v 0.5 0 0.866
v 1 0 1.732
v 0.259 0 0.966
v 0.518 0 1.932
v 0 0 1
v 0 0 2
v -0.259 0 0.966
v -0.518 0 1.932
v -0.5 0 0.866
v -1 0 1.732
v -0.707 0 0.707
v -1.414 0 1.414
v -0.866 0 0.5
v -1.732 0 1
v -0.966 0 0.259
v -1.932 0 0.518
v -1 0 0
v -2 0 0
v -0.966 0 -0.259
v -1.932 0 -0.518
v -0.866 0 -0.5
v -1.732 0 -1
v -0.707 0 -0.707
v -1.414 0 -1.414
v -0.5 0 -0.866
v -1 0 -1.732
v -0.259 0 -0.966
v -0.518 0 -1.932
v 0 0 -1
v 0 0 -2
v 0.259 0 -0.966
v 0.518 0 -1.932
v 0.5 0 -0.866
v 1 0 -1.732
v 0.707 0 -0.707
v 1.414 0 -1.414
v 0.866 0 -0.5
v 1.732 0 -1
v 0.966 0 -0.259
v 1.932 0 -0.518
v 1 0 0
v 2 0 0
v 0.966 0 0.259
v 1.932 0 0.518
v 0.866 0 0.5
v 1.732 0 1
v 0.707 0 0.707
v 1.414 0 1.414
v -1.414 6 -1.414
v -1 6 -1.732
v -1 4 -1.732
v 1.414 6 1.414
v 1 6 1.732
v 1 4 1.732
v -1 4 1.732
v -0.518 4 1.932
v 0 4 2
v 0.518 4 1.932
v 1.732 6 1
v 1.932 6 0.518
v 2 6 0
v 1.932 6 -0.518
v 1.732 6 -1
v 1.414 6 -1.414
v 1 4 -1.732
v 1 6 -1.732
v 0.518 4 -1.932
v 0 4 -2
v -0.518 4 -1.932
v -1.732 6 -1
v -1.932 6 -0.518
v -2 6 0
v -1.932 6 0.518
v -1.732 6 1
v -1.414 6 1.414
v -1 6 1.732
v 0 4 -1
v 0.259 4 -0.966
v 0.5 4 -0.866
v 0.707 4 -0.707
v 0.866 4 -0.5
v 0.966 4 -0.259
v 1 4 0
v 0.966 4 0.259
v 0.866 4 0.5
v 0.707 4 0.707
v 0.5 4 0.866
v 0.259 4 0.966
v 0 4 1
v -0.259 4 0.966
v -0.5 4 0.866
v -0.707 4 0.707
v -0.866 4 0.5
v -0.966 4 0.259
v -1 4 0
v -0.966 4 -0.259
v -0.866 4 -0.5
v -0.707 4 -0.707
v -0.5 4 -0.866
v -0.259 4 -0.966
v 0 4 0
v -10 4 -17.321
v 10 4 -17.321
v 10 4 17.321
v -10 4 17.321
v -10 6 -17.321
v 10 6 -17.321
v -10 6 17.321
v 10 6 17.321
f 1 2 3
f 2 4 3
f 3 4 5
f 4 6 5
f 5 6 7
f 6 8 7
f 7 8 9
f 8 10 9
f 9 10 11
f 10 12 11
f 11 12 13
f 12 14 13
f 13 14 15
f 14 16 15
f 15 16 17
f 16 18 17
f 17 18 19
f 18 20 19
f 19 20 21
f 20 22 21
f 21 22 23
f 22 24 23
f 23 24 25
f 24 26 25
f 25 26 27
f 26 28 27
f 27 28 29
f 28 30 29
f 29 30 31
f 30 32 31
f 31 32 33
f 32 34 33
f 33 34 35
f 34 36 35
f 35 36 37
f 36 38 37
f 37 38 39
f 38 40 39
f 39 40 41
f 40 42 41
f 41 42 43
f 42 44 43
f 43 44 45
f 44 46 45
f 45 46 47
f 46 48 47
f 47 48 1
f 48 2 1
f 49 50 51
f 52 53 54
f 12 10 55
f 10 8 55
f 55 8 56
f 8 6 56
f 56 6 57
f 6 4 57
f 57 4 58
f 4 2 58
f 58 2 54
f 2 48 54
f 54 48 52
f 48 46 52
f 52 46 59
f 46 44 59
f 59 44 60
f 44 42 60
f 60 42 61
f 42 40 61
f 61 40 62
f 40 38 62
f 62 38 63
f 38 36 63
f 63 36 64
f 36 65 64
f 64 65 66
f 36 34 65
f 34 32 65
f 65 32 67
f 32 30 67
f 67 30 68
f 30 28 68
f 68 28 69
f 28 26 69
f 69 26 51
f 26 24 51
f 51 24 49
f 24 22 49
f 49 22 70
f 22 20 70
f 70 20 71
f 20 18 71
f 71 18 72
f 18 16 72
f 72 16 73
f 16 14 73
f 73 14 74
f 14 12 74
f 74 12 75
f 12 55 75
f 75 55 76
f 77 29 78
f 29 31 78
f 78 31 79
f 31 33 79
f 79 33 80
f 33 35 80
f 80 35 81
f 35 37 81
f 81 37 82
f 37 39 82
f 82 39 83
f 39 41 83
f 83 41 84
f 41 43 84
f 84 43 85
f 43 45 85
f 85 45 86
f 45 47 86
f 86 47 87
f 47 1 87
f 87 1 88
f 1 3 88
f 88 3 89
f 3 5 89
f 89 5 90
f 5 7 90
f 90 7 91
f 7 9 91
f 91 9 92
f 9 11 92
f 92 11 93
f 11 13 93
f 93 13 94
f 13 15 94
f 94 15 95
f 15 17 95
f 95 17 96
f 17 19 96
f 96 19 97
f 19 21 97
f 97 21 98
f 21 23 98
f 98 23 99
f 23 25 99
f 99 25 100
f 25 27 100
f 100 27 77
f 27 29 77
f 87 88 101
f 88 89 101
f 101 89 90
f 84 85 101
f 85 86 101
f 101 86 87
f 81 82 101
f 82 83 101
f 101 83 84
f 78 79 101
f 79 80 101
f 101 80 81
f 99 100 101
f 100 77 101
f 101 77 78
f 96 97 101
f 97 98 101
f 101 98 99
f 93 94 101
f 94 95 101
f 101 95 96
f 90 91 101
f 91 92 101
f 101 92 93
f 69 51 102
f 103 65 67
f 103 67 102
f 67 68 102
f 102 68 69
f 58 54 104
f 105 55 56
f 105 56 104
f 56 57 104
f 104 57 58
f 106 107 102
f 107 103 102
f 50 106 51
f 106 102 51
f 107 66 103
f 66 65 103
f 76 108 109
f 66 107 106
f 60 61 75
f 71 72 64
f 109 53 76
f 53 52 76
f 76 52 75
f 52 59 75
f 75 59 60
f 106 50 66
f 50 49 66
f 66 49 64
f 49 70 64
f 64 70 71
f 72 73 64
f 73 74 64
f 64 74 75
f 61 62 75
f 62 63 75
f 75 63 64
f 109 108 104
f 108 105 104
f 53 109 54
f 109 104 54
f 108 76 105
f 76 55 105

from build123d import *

# Parameters (mm, degrees)
ESBO_O1_R                = 2
ESBO_O1_R_2              = 1
RESSALTO_EXTRUS_O1_DEPTH = 4
ESBO_O2_R                = 2
RESSALTO_EXTRUS_O2_DEPTH = 2


with BuildPart() as part:
    # Esboço1 → Ressalto-extrusão1 (new body)
    with BuildSketch(Plane(origin=(0, 0, 0), x_dir=(1, 0, 0), z_dir=(0, 1, 0))):
        with Locations(Location((0, 0, 0), (0, 0, 270))):
            Circle(ESBO_O1_R)
        with Locations(Location((0, 0, 0), (0, 0, 270))):
            Circle(ESBO_O1_R_2, mode=Mode.SUBTRACT)
    extrude(amount=RESSALTO_EXTRUS_O1_DEPTH)

    # Esboço2 → Ressalto-extrusão2 (add)
    with BuildSketch(Plane(origin=(0, 4, 0), x_dir=(1, 0, 0), z_dir=(0, 1, 0))):
        with Locations(Location((0, 0, 0), (0, 0, 60))):
            Circle(ESBO_O2_R)
        Polygon((10, 17.320508076), (0, 0), (-10, 17.320508076), align=None)
        Polygon((-10, -17.320508076), (10, -17.320508076), (0, 0), align=None)
    extrude(amount=RESSALTO_EXTRUS_O2_DEPTH)


solid = part.part
